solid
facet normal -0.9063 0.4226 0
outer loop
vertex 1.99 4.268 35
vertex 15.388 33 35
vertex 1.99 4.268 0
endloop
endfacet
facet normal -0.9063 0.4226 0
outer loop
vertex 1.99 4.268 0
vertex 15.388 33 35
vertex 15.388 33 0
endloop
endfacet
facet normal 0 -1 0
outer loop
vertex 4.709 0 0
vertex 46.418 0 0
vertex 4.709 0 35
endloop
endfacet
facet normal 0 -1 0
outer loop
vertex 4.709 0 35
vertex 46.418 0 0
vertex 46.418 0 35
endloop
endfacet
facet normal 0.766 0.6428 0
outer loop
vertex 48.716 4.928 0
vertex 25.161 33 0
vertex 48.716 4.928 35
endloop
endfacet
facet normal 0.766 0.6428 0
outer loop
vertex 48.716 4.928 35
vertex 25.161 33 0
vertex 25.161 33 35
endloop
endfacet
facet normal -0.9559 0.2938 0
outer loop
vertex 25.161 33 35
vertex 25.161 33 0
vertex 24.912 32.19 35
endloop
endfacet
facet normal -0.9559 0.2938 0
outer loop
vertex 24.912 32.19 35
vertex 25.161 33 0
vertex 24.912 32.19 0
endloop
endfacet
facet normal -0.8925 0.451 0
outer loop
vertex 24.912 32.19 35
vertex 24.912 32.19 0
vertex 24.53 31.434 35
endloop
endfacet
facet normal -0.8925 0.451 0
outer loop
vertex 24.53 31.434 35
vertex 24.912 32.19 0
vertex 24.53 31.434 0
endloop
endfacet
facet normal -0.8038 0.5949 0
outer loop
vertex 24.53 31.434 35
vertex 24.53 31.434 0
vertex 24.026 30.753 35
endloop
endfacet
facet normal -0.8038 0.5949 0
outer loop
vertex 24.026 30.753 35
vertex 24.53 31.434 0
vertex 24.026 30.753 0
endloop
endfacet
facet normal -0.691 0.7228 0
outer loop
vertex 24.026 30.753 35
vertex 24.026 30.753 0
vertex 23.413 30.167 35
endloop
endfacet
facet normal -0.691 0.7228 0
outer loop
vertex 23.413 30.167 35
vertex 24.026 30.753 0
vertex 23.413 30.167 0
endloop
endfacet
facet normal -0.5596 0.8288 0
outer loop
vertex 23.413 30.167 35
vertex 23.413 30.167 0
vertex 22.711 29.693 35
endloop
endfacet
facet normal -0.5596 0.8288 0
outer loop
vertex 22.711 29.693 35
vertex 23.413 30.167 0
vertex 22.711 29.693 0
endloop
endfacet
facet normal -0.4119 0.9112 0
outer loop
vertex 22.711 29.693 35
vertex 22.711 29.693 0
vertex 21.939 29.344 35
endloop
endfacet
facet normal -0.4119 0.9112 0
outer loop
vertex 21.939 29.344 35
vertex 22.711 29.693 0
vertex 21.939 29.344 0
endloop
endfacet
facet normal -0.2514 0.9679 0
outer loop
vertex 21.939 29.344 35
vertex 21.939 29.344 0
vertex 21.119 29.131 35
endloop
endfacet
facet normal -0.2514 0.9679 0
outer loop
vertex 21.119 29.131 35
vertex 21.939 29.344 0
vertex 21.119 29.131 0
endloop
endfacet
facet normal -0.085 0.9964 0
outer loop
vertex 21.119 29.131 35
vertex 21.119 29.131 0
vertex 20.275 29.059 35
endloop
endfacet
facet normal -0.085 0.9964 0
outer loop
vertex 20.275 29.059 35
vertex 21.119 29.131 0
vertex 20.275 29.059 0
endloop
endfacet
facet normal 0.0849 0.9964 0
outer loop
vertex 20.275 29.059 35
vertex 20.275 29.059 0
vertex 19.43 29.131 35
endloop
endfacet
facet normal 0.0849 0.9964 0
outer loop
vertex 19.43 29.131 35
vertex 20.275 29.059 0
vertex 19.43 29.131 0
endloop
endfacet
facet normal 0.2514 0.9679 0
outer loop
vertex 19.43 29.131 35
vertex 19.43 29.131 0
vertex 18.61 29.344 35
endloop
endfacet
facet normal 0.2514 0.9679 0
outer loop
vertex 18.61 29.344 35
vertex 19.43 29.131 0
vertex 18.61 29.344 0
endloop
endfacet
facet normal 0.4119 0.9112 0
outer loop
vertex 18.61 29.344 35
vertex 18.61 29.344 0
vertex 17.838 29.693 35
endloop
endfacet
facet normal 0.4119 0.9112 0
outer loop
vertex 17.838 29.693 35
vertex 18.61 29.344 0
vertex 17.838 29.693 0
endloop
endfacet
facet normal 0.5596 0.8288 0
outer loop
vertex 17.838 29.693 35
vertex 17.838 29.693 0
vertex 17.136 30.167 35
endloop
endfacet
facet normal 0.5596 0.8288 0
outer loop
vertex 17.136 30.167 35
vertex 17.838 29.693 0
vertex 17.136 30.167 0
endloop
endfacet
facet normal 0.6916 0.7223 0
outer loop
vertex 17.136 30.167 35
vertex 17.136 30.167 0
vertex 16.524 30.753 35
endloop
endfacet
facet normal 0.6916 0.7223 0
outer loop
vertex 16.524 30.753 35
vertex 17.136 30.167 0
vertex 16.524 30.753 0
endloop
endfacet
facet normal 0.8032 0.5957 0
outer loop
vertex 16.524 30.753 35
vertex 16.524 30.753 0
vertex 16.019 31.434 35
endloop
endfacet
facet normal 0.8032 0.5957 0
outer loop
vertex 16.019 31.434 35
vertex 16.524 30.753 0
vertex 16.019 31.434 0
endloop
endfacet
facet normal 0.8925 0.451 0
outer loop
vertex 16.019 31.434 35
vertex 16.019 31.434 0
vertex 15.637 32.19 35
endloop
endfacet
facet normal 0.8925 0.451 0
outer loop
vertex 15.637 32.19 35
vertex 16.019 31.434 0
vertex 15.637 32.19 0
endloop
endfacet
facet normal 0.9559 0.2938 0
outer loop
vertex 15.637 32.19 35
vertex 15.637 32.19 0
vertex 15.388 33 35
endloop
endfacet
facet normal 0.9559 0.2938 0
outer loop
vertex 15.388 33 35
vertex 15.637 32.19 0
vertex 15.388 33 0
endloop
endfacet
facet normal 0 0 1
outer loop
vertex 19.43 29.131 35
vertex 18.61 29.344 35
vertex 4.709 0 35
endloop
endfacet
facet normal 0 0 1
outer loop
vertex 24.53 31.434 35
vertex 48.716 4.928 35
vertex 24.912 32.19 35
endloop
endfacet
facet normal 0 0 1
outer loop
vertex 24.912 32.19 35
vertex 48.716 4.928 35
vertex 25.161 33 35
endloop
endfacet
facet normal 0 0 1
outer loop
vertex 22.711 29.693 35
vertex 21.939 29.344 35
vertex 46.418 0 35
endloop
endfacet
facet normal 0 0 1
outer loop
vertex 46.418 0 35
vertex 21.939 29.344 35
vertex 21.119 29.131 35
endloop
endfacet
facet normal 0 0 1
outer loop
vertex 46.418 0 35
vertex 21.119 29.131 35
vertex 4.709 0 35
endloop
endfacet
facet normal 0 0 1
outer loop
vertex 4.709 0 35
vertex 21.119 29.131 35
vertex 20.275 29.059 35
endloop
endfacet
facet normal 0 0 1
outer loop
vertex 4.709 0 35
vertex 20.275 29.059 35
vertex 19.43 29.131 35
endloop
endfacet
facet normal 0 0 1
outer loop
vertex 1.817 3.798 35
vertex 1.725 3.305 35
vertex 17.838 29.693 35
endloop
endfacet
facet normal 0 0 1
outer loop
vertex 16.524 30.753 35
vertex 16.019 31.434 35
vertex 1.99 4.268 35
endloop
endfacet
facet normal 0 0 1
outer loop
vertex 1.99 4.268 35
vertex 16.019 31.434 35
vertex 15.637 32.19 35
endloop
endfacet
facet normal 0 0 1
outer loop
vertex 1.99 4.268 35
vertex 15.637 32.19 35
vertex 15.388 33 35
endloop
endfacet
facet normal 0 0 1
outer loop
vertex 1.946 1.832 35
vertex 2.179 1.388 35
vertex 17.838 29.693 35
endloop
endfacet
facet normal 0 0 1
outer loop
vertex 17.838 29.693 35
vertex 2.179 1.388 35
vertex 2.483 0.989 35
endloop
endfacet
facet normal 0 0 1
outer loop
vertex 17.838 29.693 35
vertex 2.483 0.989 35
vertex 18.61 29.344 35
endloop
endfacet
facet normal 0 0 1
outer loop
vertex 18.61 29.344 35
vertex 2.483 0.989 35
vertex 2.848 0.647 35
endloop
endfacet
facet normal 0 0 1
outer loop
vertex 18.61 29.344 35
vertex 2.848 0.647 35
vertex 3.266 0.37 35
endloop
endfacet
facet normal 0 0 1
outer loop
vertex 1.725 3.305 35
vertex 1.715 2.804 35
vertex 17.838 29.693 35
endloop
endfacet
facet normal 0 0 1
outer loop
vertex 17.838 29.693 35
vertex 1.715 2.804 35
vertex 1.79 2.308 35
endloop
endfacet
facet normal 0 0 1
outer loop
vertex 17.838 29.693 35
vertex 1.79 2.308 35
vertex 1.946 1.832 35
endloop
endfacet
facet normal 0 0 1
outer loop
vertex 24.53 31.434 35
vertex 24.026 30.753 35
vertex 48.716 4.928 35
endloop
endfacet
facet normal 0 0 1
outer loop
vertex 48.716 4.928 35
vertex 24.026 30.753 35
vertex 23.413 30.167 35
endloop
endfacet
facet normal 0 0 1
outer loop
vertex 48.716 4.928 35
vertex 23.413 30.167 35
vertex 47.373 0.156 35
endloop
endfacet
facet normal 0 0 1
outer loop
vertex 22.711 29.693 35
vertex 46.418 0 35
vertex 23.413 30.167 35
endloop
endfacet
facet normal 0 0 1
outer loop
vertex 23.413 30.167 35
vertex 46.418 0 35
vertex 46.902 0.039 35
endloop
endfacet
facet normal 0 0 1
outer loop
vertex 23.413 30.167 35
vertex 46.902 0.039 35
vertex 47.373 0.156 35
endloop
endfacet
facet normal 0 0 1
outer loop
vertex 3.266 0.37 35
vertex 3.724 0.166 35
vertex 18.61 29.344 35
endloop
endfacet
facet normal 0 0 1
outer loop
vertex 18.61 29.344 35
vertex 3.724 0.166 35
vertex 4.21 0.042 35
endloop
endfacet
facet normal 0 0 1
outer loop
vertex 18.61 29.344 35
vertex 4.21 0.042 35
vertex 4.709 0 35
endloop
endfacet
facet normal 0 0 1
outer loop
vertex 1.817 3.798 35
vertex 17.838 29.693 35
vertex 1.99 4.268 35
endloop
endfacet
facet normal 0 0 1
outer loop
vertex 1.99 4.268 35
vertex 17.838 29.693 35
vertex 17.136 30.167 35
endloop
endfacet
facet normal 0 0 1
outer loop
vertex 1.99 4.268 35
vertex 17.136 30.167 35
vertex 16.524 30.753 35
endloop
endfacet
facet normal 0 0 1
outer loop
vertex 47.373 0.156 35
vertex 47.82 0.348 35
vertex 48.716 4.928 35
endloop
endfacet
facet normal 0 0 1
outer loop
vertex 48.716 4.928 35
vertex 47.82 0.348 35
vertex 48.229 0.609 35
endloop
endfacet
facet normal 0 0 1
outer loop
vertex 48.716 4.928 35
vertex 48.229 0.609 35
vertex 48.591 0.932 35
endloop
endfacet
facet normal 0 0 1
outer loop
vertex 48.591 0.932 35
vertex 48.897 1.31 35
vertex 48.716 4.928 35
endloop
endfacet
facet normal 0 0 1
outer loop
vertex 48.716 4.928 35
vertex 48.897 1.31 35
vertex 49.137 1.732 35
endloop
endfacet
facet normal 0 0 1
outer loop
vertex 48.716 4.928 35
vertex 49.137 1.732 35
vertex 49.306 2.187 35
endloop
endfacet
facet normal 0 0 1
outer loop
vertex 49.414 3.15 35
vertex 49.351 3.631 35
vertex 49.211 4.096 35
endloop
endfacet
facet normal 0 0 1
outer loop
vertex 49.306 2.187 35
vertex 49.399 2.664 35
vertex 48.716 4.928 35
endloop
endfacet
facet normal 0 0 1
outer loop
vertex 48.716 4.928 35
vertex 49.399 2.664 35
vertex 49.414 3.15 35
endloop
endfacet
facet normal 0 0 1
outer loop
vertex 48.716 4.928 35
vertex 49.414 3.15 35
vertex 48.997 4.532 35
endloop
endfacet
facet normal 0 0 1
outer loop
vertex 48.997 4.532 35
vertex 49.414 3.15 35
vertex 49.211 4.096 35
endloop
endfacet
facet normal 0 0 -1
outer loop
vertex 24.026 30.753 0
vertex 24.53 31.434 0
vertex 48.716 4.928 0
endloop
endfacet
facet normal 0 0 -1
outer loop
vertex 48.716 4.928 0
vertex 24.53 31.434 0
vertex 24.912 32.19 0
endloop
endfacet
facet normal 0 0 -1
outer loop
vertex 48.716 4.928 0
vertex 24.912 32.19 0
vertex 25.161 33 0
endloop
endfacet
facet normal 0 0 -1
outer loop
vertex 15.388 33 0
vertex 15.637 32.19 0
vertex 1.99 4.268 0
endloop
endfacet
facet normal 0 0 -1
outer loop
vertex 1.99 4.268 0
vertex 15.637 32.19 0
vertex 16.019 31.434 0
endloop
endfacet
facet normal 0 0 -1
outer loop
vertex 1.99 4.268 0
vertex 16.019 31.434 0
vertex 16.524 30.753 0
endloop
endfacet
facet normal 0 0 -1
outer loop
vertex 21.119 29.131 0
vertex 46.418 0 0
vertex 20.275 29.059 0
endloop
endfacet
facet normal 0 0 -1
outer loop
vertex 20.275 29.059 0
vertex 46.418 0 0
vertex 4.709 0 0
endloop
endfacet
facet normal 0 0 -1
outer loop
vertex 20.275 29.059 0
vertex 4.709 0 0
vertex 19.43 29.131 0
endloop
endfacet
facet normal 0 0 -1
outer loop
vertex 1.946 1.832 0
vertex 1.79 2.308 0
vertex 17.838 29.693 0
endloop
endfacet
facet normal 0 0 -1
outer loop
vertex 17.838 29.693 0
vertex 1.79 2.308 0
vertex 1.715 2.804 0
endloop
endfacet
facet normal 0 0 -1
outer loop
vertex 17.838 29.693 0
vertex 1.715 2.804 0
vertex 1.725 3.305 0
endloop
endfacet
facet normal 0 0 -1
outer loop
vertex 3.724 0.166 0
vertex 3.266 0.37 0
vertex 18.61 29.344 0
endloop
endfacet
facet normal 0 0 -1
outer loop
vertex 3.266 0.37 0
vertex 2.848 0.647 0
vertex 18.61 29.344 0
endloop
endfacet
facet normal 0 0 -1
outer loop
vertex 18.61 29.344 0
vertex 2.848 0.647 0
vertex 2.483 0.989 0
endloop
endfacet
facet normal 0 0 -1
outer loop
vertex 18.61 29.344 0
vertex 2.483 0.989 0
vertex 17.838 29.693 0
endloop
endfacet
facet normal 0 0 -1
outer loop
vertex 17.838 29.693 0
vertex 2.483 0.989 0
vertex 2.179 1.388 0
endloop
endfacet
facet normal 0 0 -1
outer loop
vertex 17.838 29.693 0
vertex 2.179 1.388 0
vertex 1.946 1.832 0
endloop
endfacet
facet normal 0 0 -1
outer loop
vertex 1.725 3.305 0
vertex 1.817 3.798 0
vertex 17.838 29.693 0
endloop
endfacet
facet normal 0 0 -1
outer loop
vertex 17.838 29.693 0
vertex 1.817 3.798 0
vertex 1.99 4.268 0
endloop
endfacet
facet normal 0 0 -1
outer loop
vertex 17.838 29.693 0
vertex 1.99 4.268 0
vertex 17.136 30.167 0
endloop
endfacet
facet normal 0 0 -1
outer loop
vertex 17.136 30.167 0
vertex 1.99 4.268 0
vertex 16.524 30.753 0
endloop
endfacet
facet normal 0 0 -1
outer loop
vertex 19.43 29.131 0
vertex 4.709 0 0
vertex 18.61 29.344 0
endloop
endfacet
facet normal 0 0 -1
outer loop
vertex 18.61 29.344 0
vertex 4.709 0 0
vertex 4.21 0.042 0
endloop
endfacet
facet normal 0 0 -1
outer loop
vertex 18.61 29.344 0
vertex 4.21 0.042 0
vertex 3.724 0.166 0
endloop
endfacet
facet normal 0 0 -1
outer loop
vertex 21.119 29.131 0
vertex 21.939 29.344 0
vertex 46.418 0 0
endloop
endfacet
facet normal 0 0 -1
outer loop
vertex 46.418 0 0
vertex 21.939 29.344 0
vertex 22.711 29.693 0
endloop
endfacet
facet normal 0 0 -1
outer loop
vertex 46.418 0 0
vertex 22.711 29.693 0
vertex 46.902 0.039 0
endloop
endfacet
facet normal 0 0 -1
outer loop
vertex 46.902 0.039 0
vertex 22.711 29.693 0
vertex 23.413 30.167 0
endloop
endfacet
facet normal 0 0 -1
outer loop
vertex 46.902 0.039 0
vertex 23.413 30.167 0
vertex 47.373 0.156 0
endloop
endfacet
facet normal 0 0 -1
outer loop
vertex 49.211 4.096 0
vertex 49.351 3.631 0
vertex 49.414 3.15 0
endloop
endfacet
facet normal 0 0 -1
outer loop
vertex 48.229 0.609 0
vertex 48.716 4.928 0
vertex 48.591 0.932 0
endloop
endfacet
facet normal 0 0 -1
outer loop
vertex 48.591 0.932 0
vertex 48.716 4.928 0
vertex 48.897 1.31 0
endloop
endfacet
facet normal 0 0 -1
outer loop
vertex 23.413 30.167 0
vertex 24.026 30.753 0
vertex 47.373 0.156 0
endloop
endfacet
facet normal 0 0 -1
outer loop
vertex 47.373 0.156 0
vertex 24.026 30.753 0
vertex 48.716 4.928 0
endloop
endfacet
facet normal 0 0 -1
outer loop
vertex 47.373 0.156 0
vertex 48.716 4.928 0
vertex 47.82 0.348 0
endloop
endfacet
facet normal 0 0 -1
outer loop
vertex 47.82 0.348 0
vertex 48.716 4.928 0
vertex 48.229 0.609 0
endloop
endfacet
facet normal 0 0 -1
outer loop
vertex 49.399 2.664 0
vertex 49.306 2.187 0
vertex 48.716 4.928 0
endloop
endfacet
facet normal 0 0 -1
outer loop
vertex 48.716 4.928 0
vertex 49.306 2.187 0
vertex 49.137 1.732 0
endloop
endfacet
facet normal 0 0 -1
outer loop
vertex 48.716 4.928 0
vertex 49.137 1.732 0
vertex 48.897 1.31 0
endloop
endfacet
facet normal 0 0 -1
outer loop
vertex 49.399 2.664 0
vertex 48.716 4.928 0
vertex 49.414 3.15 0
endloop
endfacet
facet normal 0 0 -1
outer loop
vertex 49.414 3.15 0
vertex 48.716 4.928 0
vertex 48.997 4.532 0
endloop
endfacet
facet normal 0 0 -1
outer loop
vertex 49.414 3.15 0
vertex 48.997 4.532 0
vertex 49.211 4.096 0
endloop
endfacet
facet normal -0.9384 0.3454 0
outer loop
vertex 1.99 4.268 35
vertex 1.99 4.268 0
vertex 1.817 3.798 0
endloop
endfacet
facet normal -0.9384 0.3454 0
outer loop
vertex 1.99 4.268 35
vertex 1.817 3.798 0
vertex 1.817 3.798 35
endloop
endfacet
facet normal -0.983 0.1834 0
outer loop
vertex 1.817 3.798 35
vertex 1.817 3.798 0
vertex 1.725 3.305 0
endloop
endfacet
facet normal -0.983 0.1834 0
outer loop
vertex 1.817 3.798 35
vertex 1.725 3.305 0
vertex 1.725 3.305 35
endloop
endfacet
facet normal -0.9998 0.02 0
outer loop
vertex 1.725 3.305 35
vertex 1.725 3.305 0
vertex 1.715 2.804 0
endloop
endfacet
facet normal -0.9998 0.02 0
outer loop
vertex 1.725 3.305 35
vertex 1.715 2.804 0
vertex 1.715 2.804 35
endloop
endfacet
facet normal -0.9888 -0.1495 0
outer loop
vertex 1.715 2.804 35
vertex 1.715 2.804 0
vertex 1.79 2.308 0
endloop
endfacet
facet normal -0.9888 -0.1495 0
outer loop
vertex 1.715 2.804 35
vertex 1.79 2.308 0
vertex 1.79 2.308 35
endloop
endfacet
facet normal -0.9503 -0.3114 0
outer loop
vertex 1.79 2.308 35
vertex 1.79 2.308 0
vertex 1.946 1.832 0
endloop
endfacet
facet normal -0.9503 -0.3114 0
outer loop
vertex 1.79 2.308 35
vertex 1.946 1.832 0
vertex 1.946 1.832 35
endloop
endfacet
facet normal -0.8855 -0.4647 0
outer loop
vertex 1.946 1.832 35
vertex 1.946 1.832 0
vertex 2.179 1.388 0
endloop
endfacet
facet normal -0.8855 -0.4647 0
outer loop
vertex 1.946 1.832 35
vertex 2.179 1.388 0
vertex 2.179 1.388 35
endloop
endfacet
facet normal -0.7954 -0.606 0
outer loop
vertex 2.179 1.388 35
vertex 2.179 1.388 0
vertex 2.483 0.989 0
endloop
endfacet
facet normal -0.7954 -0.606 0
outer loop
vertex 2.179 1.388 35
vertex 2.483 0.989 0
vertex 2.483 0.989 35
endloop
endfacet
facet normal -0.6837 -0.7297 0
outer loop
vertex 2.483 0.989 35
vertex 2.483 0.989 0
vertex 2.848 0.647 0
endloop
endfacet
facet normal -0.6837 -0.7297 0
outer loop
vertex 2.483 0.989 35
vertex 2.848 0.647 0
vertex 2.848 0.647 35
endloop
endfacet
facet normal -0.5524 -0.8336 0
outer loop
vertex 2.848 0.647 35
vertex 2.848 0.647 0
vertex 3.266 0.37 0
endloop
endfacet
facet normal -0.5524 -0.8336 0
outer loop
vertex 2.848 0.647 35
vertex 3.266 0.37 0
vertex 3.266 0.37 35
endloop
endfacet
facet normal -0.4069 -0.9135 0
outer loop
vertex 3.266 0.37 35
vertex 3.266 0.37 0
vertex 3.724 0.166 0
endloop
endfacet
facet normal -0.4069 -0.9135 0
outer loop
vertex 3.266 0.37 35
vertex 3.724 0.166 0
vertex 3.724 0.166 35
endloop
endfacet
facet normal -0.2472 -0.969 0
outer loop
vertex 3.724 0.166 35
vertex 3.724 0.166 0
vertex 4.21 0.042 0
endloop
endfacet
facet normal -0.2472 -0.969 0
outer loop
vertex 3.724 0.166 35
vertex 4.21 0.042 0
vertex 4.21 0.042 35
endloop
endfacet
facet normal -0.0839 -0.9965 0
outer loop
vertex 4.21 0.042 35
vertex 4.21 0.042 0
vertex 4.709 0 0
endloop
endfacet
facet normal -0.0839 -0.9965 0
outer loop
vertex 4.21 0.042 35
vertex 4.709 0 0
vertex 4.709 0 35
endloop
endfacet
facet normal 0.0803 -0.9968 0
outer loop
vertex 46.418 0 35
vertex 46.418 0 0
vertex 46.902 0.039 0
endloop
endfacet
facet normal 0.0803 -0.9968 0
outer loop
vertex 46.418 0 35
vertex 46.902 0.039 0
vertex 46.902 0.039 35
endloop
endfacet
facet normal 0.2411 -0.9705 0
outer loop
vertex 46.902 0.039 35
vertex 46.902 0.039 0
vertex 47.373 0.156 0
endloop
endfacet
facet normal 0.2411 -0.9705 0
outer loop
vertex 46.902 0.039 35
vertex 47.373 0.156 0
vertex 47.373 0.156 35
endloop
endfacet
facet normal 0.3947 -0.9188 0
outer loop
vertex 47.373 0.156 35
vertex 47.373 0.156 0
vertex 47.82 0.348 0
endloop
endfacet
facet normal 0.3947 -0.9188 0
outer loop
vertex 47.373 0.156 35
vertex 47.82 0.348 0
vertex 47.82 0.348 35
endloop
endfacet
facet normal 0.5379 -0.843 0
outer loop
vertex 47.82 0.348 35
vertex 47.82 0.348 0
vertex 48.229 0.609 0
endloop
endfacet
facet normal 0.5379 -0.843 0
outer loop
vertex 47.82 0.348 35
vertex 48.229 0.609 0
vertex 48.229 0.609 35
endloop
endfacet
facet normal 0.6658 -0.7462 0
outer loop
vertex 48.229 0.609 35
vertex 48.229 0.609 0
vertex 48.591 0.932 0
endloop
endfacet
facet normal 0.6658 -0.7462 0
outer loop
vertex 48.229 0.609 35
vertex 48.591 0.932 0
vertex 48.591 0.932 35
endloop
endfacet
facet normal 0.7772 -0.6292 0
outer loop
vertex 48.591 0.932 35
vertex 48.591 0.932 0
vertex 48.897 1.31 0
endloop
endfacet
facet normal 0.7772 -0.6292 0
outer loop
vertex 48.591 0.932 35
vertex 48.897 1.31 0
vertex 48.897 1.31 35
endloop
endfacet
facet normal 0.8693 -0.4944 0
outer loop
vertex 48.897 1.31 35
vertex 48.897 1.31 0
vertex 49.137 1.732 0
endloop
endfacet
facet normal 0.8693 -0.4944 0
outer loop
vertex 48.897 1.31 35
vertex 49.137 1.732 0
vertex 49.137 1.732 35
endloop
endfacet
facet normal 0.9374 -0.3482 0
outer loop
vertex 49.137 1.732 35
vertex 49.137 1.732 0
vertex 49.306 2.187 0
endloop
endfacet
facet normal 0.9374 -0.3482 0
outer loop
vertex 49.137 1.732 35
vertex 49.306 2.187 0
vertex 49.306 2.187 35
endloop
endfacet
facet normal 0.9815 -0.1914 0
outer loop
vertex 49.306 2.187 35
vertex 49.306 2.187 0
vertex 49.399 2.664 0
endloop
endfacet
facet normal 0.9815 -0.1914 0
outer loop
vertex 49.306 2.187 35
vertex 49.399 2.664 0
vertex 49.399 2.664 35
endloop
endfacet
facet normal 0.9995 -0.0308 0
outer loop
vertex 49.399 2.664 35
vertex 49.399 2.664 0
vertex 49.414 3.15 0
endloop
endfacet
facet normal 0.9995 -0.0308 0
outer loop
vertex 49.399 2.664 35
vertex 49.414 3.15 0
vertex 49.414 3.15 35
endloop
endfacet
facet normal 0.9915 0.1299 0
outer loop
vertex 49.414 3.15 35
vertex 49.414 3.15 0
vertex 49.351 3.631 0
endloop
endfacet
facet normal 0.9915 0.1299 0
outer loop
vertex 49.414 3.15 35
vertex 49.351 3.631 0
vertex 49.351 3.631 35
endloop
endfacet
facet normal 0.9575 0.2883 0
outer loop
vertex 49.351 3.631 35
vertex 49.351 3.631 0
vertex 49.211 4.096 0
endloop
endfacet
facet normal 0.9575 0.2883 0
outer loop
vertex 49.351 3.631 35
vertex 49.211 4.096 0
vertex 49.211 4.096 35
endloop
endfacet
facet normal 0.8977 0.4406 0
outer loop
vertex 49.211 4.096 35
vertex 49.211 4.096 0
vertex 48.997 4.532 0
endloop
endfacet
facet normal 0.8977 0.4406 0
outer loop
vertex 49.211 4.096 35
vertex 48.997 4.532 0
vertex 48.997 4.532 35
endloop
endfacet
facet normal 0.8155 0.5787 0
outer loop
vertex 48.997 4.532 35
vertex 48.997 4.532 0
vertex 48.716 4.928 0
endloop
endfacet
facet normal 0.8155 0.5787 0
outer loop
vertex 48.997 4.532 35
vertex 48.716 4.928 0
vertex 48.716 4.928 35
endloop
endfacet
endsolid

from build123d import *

# Parameters (mm, degrees)
EXTRUDE_1_DEPTH = 35
FILLET_1_R      = 3


with BuildPart() as part:
    # 스케치1 → 보스-돌출1 (new body)
    with BuildSketch(Plane.XY):
        with BuildLine():
            Line((0, 0), (52.851450041, 0))
            Line((52.851450041, 0), (25.161162212, 33))
            ThreePointArc((25.161162212, 33), (20.274657466, 29.059278699), (15.388152719, 33))
            Line((15.388152719, 33), (0, 0))
        make_face()
    extrude(amount=EXTRUDE_1_DEPTH)

    # 필렛1
    fillet_1_edges = [part.edges().sort_by_distance(p)[0] for p in [
        (52.851450041, 0, 17.5),
        (0, 0, 17.5),
    ]]
    fillet(fillet_1_edges, radius=FILLET_1_R)


solid = part.part
